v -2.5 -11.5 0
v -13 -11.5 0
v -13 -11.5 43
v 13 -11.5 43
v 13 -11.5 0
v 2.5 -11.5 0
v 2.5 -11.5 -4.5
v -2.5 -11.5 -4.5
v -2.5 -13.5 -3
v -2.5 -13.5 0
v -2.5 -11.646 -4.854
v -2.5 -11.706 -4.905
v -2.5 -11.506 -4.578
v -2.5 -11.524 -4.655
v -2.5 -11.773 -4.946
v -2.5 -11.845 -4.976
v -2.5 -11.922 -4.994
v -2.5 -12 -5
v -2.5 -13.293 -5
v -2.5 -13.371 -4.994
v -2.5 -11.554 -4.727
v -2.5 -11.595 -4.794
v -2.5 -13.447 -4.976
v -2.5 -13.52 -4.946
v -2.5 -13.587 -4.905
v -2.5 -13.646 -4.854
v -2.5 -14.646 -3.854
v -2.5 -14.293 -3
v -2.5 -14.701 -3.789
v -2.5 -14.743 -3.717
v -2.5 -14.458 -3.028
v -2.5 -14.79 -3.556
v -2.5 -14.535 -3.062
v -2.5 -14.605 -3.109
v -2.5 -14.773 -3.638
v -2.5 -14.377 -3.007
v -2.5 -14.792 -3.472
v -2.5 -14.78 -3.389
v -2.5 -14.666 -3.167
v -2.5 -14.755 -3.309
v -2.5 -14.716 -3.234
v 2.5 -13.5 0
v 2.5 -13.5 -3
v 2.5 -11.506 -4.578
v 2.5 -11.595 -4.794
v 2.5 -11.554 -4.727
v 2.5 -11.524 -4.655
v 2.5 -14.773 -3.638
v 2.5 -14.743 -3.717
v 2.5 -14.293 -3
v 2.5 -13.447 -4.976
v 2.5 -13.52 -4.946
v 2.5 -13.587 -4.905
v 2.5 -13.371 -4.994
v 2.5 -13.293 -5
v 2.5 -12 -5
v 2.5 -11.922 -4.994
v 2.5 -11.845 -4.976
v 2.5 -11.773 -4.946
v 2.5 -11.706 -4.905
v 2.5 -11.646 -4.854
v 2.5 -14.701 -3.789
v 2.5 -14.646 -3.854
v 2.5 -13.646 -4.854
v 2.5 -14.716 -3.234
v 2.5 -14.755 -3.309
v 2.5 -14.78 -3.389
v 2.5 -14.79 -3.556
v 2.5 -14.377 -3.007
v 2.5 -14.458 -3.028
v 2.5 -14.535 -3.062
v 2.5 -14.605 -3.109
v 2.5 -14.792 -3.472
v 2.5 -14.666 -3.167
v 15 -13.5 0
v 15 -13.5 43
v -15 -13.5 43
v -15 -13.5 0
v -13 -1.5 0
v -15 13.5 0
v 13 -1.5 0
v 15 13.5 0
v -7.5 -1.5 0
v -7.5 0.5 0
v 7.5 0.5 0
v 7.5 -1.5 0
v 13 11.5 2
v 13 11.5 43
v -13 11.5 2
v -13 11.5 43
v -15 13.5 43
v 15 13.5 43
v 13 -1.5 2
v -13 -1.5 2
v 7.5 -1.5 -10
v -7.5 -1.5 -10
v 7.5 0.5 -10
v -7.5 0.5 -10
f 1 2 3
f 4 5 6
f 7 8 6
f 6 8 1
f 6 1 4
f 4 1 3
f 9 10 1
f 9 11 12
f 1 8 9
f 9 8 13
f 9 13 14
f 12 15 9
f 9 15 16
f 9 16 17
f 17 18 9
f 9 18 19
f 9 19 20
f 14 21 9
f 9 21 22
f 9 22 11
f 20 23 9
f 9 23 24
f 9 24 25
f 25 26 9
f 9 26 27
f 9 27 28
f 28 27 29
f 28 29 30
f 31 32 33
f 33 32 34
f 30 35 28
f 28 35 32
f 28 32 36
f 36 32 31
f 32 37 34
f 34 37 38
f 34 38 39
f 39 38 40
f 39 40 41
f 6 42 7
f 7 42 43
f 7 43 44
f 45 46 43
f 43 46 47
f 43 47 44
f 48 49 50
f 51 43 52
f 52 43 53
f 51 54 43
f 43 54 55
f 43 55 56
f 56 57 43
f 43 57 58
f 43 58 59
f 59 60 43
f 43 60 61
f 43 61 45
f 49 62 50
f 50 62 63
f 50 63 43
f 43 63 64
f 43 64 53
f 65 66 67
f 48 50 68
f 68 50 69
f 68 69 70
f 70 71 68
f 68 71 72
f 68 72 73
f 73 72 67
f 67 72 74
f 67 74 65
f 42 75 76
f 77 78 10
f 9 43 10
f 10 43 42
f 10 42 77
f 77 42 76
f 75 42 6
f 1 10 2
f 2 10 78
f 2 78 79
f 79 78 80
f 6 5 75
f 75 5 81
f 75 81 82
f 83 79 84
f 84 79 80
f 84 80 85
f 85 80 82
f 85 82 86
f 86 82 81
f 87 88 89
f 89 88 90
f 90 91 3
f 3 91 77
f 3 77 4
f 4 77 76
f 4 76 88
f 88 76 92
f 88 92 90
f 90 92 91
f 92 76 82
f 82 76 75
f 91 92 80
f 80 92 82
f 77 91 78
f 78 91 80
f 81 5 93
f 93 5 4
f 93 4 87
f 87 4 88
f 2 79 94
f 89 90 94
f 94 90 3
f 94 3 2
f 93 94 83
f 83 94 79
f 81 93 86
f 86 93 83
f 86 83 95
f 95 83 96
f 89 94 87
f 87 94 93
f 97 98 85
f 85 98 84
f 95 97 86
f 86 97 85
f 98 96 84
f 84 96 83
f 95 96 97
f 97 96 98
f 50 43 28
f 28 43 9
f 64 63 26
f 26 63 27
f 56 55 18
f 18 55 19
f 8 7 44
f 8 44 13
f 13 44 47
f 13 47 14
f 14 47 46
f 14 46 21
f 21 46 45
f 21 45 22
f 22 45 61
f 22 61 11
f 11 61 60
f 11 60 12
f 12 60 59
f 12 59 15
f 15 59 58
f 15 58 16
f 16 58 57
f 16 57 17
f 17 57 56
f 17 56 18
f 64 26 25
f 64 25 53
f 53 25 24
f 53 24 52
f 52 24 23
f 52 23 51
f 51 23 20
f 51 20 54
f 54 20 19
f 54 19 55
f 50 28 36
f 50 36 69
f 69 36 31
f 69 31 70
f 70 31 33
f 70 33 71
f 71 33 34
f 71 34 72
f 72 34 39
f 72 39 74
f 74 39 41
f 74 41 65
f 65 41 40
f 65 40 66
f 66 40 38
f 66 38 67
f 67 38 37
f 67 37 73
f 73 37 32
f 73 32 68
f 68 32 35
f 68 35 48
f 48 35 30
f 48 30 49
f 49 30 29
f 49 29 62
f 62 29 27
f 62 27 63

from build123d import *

# Parameters (mm, degrees)
SKETCH1_W           = 30
SKETCH1_H           = 27
SKETCH1_W_2         = 26
SKETCH1_H_2         = 23
BOSS_EXTRUDE1_DEPTH = 43
SKETCH3_W           = 30
SKETCH3_H           = 15
BOSS_EXTRUDE2_DEPTH = 2
SKETCH5_W           = 15
SKETCH5_H           = 2
SKETCH5_W_2         = 5
BOSS_EXTRUDE3_DEPTH = 10
BOSS_EXTRUDE4_DEPTH = 5
SKETCH7_W           = 5
SKETCH7_H           = 2
CUT_EXTRUDE1_DEPTH  = 5
FILLET3_R           = 0.5


with BuildPart() as part:
    # Sketch1 → Boss-Extrude1 (new body)
    with BuildSketch(Plane.XY):
        Rectangle(SKETCH1_W, SKETCH1_H)
        Rectangle(SKETCH1_W_2, SKETCH1_H_2, mode=Mode.SUBTRACT)
    extrude(amount=BOSS_EXTRUDE1_DEPTH)

    # Sketch3 → Boss-Extrude2 (add)
    with BuildSketch(Plane(origin=(0, 0, 0), x_dir=(-1, 0, 0), z_dir=(0, 0, -1))):
        with Locations((0, 6)):
            Rectangle(SKETCH3_W, SKETCH3_H)
    extrude(amount=-BOSS_EXTRUDE2_DEPTH)

    # Sketch5 → Boss-Extrude3 (add)
    with BuildSketch(Plane(origin=(0, 0, 0), x_dir=(-1, 0, 0), z_dir=(0, 0, -1))):
        with Locations((0, -0.5)):
            Rectangle(SKETCH5_W, SKETCH5_H)
        with Locations((0, -12.5)):
            Rectangle(SKETCH5_W_2, SKETCH5_H)
    extrude(amount=BOSS_EXTRUDE3_DEPTH)

    # Sketch6 → Boss-Extrude4 (add)
    with BuildSketch(Plane.ZY.offset(2.5)):
        Polygon((-5, -13.5), (-3, -15.5), (-3, -13.5), align=None)
    extrude(amount=-BOSS_EXTRUDE4_DEPTH)

    # Sketch7 → Cut-Extrude1 (cut)
    with BuildSketch(Plane(origin=(0, 0, -10), x_dir=(-1, 0, 0), z_dir=(0, 0, -1))):
        with Locations((0, -12.5)):
            Rectangle(SKETCH7_W, SKETCH7_H)
    extrude(amount=-CUT_EXTRUDE1_DEPTH, mode=Mode.SUBTRACT)

    # Fillet3
    fillet3_edges = [part.edges().sort_by_distance(p)[0] for p in [
        (0, -13.5, -5),
        (0, -15.5, -3),
        (0, -11.5, -5),
    ]]
    fillet(fillet3_edges, radius=FILLET3_R)


solid = part.part
